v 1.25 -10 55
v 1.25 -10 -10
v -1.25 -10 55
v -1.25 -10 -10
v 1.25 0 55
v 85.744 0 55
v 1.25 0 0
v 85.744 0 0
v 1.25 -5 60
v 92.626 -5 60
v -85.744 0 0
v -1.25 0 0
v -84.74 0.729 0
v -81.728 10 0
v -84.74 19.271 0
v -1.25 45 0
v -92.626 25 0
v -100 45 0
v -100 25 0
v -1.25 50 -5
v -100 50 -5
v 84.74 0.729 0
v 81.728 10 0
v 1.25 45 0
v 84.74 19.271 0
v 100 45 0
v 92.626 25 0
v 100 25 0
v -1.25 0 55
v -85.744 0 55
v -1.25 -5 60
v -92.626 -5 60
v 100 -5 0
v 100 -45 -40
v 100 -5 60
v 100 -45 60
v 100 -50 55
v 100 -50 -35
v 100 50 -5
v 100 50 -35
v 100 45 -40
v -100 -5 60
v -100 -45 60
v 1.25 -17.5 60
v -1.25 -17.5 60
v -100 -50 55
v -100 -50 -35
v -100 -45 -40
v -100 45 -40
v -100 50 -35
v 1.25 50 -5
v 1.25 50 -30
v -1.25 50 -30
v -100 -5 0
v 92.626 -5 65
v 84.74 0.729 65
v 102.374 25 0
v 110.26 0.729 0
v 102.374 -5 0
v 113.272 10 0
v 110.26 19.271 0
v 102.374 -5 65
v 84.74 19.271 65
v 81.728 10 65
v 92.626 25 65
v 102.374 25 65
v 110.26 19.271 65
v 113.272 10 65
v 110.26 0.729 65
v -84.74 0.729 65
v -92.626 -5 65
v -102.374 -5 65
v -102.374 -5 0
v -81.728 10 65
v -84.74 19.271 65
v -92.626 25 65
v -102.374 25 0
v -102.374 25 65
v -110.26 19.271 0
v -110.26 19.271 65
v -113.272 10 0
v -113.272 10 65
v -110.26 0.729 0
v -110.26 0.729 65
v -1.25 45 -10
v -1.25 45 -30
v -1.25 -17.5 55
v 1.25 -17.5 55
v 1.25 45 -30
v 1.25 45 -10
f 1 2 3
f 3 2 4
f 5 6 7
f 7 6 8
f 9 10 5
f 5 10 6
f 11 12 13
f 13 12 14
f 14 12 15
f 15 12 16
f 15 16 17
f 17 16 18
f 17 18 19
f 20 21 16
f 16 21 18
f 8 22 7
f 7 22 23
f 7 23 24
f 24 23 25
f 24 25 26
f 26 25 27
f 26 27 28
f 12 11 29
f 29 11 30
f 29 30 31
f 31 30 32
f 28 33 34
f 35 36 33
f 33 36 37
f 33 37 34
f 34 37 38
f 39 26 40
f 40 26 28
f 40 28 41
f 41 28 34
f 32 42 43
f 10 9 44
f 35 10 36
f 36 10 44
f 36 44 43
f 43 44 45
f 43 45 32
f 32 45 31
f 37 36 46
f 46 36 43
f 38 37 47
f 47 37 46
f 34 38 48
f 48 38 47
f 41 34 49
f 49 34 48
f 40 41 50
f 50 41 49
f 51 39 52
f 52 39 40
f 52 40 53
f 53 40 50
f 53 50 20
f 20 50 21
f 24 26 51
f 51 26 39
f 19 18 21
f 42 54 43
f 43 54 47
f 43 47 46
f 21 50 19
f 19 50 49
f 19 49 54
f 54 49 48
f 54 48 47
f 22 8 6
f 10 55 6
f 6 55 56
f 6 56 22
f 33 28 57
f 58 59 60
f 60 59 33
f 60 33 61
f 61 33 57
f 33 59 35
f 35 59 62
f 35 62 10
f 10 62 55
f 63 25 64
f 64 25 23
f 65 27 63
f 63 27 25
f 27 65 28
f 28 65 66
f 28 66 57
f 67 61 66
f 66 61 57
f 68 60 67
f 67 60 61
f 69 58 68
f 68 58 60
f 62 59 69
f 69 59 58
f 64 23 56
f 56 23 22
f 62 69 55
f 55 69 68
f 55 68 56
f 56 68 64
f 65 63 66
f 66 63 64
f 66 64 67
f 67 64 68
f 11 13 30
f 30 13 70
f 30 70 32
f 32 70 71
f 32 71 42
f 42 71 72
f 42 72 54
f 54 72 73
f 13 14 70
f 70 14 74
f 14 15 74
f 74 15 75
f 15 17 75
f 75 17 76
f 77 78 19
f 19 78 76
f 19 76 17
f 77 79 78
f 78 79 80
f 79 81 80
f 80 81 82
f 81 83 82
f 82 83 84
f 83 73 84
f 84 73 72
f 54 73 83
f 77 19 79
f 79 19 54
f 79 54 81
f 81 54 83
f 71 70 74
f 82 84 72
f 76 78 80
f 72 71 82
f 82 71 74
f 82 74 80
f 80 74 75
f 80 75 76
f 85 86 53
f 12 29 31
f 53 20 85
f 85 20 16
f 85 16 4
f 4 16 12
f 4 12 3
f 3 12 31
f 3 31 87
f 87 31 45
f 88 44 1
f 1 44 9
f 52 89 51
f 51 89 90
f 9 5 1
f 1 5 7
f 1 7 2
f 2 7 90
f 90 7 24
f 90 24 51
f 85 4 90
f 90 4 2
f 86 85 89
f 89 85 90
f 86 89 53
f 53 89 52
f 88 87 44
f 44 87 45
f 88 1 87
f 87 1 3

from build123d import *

# Parameters (mm, degrees)
BOSS_EXTRUDE1_DEPTH = 100
BOSS_EXTRUDE3_DEPTH = 65
SKETCH5_W           = 2.5
SKETCH5_H           = 50
CUT_EXTRUDE1_DEPTH  = 10
SKETCH6_W           = 2.5
SKETCH6_H           = 90
CUT_EXTRUDE3_DEPTH  = 5
SKETCH7_W           = 2.5
SKETCH7_H           = 70
CUT_EXTRUDE4_DEPTH  = 10
SKETCH8_W           = 2.5
SKETCH8_H           = 17.5
CUT_EXTRUDE5_DEPTH  = 5


with BuildPart() as part:
    # Sketch1 → Boss-Extrude1 (new body, symmetric)
    with BuildSketch(Plane(origin=(0, 0, 0), x_dir=(0, 0, -1), z_dir=(1, 0, 0))):
        Polygon((0, 0), (-55, 0), (-60, -5), (-60, -45), (-55, -50), (35, -50), (40, -45), (40, 45), (35, 50), (5, 50), (0, 45), align=None)
    extrude(amount=BOSS_EXTRUDE1_DEPTH, both=True)

    # Sketch2 → Boss-Extrude3 (add)
    with BuildSketch(Plane.XY):
        Polygon((113.271933364, 10), (110.259762125, 19.270509831), (102.373795443, 25), (92.626204557, 25), (84.740237875, 19.270509831), (81.728066636, 10), (84.740237875, 0.729490169), (92.626204557, -5), (102.373795443, -5), (110.259762125, 0.729490169), align=None)
    boss_extrude3 = extrude(amount=BOSS_EXTRUDE3_DEPTH)

    # Mirror1: Boss-Extrude3 across plane
    add(boss_extrude3.mirror(Plane(origin=(0, 0, 0), x_dir=(0, 0, 1), z_dir=(1, 0, 0))))

    # Sketch5 → Cut-Extrude1 (cut)
    with BuildSketch(Plane.XY):
        with Locations((0, 25)):
            Rectangle(SKETCH5_W, SKETCH5_H)
    extrude(amount=-CUT_EXTRUDE1_DEPTH, mode=Mode.SUBTRACT)

    # Sketch6 → Cut-Extrude3 (cut)
    with BuildSketch(Plane(origin=(0, 50, 0), x_dir=(1, 0, 0), z_dir=(0, 1, 0))):
        with Locations((0, -15)):
            Rectangle(SKETCH6_W, SKETCH6_H)
    extrude(amount=-CUT_EXTRUDE3_DEPTH, mode=Mode.SUBTRACT)

    # Sketch7 → Cut-Extrude4 (cut)
    with BuildSketch(Plane(origin=(0, 0, 0), x_dir=(1, 0, 0), z_dir=(0, 1, 0))):
        with Locations((0, -25)):
            Rectangle(SKETCH7_W, SKETCH7_H)
    extrude(amount=-CUT_EXTRUDE4_DEPTH, mode=Mode.SUBTRACT)

    # Sketch8 → Cut-Extrude5 (cut)
    with BuildSketch(Plane.XY.offset(60)):
        with Locations((0, -8.75)):
            Rectangle(SKETCH8_W, SKETCH8_H)
    extrude(amount=-CUT_EXTRUDE5_DEPTH, mode=Mode.SUBTRACT)


solid = part.part
